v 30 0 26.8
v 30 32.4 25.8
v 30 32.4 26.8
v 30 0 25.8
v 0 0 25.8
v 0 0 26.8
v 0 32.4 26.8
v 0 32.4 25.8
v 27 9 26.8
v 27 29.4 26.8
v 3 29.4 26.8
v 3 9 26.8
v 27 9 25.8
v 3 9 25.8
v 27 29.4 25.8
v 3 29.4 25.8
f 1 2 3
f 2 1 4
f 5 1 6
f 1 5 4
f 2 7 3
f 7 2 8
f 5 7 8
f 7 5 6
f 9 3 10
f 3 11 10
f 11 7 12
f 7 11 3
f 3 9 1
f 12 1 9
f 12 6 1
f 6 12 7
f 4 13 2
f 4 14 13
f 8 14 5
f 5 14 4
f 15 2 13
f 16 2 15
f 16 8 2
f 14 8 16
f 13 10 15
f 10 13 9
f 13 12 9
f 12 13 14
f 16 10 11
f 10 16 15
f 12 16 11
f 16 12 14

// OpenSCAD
$fn = 180;

flat_height = 26.8;
bedroom_x = 30.;
bedroom_z = 32.4;
ceiling_height = 1.;
sus = 3.;
cabbinet = 6.;
eps = 0.01;

module wall_with_openings() {
    translate([0, flat_height - ceiling_height, -bedroom_z]) {
        difference() {
            cube([bedroom_x, ceiling_height, bedroom_z]);
            translate([sus, -eps, sus]) {
                cube([bedroom_x - 2. * sus, ceiling_height + 2 * eps, bedroom_z - 2. * sus - cabbinet]);
            }
        }
    }
}

rotate([90, 0, 0]) wall_with_openings();
